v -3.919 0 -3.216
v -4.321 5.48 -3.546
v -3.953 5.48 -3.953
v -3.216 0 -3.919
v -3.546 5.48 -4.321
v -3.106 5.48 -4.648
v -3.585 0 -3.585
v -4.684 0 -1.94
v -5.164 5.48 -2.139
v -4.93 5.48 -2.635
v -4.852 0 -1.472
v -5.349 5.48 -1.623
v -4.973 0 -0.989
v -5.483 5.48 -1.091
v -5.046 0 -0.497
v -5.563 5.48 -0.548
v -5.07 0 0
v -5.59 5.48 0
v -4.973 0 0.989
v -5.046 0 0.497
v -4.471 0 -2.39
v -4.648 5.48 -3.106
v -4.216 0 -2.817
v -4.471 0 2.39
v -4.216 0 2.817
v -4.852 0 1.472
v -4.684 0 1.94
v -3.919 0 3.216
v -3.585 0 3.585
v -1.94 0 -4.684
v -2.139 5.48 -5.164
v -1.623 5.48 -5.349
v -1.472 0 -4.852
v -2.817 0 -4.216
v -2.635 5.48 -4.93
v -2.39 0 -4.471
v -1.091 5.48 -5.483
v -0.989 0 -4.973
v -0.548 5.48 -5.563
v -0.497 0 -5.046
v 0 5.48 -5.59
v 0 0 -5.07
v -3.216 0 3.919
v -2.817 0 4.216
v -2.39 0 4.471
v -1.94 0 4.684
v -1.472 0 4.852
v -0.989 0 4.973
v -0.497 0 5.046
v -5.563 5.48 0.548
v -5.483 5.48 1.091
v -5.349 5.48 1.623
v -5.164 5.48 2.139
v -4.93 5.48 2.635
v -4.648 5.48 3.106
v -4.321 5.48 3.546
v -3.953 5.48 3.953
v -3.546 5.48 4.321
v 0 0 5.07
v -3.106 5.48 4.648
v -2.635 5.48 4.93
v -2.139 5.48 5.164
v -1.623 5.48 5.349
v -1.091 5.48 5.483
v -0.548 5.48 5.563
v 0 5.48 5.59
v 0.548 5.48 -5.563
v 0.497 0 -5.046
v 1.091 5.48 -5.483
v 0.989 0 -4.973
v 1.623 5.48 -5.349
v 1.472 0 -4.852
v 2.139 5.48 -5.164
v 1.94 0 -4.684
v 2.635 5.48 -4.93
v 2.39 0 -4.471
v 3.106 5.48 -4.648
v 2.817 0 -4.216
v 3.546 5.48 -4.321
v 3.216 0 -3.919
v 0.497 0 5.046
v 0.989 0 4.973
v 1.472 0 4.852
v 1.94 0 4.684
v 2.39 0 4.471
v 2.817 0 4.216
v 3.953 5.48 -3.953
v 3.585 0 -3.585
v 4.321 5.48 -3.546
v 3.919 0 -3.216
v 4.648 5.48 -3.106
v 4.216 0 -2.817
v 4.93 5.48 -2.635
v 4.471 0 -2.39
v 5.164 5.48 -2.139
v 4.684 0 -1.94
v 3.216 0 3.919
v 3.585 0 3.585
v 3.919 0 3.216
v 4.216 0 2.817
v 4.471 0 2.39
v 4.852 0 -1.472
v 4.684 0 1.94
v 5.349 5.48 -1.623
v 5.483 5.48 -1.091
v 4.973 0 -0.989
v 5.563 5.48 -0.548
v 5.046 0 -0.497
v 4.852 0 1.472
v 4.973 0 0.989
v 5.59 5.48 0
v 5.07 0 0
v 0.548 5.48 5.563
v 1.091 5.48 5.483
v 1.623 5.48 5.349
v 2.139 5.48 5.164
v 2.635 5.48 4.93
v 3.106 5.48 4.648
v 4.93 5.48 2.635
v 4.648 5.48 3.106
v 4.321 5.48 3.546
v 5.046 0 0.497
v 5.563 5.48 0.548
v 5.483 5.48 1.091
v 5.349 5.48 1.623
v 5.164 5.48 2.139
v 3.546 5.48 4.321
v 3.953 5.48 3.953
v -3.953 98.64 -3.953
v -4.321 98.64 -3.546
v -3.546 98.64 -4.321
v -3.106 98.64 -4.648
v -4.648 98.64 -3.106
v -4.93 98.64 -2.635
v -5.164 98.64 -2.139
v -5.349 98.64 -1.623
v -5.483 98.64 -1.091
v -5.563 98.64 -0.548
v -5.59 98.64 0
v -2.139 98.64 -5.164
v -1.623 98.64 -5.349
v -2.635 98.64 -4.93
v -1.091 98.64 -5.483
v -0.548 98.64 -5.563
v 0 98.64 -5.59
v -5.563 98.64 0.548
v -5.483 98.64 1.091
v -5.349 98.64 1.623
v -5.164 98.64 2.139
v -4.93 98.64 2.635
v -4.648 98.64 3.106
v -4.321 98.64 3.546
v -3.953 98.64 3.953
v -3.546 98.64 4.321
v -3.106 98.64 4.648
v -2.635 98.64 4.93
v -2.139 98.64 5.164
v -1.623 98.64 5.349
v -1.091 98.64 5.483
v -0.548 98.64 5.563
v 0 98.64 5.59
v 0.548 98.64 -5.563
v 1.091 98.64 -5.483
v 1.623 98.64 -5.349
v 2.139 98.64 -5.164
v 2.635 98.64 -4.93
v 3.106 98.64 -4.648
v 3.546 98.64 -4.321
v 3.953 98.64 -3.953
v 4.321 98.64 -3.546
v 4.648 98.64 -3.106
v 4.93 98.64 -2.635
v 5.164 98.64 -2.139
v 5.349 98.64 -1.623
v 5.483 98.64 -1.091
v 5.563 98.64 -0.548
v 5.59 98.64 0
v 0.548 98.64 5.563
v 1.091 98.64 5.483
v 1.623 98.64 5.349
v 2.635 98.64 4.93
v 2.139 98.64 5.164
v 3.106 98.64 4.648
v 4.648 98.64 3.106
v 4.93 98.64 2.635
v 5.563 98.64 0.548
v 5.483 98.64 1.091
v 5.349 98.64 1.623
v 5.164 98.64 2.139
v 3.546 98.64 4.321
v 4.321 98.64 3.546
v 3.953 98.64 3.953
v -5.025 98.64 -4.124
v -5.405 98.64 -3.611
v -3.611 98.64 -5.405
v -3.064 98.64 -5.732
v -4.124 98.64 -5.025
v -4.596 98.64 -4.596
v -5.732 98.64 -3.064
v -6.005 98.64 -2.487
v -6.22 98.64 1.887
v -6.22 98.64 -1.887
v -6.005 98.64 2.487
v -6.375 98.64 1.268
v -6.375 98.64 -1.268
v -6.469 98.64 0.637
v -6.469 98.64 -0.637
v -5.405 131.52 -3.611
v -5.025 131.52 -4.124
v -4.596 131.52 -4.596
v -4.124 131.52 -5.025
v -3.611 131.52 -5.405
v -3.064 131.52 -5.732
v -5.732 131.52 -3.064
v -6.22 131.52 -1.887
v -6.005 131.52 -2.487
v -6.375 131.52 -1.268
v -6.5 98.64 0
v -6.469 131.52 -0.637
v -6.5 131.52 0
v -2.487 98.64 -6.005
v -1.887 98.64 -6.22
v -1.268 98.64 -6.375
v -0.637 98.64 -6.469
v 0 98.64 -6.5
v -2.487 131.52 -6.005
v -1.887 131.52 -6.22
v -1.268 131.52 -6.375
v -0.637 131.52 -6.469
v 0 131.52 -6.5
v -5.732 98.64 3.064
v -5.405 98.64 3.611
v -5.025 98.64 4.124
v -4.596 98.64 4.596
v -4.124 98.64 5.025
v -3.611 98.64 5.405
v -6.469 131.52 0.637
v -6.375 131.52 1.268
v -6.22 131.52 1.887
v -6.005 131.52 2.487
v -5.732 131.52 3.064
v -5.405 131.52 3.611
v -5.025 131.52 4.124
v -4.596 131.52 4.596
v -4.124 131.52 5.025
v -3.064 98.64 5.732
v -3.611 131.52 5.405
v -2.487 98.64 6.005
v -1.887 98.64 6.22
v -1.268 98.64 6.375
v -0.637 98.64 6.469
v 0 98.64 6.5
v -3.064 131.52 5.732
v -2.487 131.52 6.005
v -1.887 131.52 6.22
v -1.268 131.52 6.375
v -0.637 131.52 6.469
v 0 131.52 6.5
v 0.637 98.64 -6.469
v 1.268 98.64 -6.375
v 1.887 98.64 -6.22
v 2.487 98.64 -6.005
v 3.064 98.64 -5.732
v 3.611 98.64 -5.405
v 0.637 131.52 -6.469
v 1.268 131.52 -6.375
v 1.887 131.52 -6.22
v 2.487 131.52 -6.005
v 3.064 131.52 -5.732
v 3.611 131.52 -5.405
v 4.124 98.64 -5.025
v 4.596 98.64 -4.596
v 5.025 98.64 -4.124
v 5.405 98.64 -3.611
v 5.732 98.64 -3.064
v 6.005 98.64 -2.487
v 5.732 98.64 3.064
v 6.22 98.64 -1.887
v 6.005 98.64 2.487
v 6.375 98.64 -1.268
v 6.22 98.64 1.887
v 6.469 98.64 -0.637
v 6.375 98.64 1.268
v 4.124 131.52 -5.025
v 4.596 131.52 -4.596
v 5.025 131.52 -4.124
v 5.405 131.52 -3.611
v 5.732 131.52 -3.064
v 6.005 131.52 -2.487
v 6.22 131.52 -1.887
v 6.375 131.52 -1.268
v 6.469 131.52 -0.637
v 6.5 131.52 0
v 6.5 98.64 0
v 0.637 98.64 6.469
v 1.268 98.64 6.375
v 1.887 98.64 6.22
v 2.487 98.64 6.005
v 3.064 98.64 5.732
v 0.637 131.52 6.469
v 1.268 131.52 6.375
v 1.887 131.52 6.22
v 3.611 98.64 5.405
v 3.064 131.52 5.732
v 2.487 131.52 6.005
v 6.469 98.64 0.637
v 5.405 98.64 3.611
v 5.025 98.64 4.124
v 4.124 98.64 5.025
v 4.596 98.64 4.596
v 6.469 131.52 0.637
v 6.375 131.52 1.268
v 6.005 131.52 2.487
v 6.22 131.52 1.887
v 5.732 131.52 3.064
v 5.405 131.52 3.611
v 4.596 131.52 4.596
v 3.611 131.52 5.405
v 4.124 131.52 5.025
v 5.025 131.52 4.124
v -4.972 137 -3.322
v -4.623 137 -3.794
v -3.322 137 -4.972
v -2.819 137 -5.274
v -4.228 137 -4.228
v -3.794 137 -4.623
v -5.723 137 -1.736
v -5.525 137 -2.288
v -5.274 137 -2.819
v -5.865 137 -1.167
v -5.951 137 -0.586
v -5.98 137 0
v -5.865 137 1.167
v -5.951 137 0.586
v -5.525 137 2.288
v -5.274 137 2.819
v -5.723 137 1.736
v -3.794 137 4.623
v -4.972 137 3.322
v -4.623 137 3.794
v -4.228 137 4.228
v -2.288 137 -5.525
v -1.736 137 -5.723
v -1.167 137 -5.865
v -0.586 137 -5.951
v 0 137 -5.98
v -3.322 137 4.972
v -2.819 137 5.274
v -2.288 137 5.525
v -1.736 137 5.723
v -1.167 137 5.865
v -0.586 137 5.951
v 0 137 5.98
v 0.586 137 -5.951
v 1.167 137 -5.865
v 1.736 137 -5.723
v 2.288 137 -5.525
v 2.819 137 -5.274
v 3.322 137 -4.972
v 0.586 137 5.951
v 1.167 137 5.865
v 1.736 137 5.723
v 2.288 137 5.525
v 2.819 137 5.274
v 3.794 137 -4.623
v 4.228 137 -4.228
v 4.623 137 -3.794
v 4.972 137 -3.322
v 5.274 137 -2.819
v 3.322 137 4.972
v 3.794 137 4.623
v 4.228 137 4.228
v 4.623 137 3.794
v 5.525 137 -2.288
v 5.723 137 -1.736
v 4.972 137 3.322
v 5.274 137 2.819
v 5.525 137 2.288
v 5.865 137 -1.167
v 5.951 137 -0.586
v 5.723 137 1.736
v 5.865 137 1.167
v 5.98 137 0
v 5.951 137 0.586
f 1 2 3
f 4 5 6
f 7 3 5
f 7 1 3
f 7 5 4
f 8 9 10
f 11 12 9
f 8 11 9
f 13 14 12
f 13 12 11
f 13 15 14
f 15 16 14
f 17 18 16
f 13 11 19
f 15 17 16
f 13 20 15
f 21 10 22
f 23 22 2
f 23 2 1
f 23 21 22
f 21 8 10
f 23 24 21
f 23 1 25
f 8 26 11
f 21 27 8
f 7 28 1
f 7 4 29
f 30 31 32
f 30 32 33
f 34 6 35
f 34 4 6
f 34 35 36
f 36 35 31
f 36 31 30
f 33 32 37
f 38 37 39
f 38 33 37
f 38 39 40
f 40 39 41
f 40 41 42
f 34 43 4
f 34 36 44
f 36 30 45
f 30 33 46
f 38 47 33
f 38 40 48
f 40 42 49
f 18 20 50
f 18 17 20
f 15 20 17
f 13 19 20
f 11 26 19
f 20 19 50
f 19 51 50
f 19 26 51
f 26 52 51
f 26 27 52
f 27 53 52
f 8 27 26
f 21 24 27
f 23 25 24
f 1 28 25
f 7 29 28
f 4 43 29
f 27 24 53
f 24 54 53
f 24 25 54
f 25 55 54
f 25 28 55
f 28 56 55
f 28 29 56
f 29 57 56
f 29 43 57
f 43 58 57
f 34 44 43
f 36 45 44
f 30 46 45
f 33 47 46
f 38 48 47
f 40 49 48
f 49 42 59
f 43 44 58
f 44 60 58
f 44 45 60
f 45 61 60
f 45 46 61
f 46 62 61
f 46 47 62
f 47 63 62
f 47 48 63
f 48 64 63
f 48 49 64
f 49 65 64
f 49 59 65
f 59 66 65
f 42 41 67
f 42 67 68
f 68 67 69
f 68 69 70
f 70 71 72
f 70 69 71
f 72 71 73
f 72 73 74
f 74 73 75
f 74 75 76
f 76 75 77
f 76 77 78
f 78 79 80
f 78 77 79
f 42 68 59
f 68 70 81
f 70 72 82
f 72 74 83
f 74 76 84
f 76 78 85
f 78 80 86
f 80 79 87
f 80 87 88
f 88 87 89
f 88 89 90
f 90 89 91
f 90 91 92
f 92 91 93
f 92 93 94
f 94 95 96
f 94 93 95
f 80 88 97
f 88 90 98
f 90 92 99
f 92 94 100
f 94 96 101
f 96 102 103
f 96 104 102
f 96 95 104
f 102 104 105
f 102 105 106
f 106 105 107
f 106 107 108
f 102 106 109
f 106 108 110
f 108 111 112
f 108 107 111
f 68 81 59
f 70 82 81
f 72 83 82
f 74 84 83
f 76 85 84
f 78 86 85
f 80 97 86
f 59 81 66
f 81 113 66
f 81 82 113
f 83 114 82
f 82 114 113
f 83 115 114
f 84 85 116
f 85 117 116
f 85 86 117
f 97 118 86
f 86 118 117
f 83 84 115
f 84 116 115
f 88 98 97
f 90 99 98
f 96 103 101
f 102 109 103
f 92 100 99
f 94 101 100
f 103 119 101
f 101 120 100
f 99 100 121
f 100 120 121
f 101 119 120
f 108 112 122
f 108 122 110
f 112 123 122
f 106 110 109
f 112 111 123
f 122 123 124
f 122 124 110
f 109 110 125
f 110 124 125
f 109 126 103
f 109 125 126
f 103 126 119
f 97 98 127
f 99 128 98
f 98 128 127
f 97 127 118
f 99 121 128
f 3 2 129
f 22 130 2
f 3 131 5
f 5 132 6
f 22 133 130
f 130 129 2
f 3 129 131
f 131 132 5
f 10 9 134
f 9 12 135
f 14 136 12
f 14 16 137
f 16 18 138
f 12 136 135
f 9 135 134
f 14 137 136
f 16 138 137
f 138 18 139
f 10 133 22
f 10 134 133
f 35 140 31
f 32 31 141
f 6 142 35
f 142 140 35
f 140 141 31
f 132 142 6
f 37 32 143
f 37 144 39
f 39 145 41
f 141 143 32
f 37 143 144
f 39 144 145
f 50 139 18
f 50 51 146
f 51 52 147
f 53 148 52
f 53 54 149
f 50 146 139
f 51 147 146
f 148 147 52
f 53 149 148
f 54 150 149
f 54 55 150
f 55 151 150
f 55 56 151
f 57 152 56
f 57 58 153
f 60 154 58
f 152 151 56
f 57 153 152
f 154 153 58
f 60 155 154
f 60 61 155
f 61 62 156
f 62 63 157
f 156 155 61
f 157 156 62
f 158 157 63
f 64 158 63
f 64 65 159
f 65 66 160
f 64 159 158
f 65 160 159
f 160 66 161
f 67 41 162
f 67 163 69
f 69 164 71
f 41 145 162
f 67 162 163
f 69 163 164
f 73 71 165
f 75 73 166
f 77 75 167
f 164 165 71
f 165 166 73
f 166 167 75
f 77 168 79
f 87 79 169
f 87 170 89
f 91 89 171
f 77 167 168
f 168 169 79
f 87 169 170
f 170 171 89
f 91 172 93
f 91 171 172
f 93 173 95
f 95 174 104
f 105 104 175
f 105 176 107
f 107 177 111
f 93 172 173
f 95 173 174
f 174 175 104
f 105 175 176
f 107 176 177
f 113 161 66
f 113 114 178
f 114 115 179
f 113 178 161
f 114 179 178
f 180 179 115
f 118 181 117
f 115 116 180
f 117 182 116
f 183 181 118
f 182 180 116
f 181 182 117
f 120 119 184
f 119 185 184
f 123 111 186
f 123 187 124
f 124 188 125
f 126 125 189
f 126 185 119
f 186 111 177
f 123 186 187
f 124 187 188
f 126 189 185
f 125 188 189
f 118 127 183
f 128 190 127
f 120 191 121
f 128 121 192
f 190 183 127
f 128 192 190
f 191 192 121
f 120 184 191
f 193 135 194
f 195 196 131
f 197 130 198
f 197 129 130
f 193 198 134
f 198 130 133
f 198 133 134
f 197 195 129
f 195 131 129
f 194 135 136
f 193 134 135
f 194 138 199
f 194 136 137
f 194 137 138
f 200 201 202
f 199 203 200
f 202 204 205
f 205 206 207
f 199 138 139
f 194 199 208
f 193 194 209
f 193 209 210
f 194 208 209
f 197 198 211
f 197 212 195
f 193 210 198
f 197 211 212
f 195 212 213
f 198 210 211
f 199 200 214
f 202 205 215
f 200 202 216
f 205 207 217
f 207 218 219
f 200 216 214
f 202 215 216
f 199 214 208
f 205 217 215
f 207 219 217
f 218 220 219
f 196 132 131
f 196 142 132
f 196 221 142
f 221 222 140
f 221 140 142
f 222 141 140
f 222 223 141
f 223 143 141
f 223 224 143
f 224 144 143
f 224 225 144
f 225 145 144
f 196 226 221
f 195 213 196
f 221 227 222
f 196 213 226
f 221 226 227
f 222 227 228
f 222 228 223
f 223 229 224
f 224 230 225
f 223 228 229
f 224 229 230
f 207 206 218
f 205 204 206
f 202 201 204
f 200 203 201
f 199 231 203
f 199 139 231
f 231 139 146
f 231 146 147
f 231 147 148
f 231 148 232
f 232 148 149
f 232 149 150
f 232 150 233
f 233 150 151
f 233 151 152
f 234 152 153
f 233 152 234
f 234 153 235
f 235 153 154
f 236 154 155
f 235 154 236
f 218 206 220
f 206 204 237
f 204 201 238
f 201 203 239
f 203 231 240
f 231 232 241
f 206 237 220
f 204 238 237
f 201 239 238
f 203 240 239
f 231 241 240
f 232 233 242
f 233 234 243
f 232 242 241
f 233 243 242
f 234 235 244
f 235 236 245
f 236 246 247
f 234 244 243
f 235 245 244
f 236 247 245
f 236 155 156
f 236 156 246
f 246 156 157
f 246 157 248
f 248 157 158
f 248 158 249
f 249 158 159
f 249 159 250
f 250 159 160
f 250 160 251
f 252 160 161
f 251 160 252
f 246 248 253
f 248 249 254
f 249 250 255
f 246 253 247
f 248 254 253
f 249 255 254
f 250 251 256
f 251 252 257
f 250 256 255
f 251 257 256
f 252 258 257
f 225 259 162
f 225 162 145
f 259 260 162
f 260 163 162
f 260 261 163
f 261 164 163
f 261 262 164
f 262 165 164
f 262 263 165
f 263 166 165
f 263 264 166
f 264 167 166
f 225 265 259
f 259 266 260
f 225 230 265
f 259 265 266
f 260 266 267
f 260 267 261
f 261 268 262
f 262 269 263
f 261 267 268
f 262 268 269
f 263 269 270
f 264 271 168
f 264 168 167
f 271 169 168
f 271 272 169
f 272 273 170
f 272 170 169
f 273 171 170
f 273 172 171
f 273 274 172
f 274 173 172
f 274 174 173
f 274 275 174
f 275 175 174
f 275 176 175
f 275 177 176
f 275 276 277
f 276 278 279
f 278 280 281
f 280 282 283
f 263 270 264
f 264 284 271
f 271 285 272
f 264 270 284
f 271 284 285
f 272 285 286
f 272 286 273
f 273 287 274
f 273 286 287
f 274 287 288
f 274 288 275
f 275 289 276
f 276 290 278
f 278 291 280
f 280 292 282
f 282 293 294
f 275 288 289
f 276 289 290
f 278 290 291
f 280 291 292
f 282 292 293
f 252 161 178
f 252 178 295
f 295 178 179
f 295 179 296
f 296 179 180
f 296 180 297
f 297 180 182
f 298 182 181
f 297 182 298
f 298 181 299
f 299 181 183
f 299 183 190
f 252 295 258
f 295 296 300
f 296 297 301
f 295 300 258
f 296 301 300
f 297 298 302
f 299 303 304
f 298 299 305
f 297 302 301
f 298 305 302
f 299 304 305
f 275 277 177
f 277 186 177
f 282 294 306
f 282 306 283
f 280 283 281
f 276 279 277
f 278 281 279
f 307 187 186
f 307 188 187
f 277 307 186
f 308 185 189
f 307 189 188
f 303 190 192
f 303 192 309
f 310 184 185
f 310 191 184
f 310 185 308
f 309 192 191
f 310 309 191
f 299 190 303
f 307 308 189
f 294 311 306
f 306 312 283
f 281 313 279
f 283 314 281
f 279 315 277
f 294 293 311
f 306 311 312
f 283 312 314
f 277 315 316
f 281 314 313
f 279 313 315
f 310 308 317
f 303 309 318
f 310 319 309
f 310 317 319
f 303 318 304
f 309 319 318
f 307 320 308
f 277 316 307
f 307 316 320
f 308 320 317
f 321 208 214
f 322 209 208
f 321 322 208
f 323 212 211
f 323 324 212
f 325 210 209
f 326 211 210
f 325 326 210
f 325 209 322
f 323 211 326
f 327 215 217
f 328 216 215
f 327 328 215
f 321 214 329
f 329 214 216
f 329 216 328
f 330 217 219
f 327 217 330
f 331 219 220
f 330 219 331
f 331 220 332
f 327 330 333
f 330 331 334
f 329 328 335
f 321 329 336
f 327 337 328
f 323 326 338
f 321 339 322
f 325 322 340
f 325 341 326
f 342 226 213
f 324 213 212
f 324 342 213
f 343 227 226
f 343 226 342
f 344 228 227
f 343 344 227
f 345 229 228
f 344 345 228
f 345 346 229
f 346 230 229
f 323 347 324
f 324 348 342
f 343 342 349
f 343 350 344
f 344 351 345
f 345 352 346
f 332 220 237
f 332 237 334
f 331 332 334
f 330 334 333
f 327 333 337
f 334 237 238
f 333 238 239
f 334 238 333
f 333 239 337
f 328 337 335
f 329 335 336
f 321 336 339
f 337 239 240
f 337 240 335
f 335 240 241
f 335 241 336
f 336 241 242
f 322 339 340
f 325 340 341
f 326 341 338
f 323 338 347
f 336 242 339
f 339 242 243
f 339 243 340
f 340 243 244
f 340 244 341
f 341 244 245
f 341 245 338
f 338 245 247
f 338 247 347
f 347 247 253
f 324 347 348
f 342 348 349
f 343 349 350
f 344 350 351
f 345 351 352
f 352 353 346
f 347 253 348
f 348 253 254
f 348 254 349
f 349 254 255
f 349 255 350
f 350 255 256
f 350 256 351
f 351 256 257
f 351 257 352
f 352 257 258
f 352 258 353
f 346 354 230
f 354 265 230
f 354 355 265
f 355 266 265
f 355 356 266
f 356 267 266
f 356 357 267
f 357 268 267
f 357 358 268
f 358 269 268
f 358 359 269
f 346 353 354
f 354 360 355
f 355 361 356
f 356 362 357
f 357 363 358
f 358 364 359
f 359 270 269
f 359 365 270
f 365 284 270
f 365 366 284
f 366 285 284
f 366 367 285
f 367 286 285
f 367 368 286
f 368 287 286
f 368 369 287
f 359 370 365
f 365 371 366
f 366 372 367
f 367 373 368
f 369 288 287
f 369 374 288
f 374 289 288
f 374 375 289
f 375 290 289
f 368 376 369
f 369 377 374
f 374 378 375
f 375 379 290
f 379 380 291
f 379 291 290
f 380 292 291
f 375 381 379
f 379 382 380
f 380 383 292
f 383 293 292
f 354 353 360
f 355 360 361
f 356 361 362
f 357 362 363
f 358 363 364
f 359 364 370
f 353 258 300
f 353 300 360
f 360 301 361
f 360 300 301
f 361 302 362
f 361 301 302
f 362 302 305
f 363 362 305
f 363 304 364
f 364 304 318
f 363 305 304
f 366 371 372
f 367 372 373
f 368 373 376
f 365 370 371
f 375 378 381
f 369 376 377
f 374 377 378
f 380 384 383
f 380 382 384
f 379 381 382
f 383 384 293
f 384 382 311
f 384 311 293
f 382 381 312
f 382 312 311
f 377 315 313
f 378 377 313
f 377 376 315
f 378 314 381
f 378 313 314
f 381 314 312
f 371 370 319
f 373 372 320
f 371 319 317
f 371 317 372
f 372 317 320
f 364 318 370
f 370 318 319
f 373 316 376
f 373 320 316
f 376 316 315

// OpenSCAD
// Sharpie standard-tip marker, 13 × 137 mm
// The standard-tip OOMP record matches the branded v4 profile in diameter and length. Cap and barrel split are illustrative.
// Units: mm
$fn = 64;
union() {
    translate([0, 0, 0]) rotate([-90, 0, 0])
        cylinder(h=5.48, r1=5.07, r2=5.59, $fn=64);
    translate([0, 5.48, 0]) rotate([-90, 0, 0])
        cylinder(h=93.16000000000001, r1=5.59, r2=5.59, $fn=64);
    translate([0, 98.64000000000001, 0]) rotate([-90, 0, 0])
        cylinder(h=32.879999999999995, r1=6.5, r2=6.5, $fn=64);
    translate([0, 131.52, 0]) rotate([-90, 0, 0])
        cylinder(h=5.48, r1=6.5, r2=5.98, $fn=64);
}
